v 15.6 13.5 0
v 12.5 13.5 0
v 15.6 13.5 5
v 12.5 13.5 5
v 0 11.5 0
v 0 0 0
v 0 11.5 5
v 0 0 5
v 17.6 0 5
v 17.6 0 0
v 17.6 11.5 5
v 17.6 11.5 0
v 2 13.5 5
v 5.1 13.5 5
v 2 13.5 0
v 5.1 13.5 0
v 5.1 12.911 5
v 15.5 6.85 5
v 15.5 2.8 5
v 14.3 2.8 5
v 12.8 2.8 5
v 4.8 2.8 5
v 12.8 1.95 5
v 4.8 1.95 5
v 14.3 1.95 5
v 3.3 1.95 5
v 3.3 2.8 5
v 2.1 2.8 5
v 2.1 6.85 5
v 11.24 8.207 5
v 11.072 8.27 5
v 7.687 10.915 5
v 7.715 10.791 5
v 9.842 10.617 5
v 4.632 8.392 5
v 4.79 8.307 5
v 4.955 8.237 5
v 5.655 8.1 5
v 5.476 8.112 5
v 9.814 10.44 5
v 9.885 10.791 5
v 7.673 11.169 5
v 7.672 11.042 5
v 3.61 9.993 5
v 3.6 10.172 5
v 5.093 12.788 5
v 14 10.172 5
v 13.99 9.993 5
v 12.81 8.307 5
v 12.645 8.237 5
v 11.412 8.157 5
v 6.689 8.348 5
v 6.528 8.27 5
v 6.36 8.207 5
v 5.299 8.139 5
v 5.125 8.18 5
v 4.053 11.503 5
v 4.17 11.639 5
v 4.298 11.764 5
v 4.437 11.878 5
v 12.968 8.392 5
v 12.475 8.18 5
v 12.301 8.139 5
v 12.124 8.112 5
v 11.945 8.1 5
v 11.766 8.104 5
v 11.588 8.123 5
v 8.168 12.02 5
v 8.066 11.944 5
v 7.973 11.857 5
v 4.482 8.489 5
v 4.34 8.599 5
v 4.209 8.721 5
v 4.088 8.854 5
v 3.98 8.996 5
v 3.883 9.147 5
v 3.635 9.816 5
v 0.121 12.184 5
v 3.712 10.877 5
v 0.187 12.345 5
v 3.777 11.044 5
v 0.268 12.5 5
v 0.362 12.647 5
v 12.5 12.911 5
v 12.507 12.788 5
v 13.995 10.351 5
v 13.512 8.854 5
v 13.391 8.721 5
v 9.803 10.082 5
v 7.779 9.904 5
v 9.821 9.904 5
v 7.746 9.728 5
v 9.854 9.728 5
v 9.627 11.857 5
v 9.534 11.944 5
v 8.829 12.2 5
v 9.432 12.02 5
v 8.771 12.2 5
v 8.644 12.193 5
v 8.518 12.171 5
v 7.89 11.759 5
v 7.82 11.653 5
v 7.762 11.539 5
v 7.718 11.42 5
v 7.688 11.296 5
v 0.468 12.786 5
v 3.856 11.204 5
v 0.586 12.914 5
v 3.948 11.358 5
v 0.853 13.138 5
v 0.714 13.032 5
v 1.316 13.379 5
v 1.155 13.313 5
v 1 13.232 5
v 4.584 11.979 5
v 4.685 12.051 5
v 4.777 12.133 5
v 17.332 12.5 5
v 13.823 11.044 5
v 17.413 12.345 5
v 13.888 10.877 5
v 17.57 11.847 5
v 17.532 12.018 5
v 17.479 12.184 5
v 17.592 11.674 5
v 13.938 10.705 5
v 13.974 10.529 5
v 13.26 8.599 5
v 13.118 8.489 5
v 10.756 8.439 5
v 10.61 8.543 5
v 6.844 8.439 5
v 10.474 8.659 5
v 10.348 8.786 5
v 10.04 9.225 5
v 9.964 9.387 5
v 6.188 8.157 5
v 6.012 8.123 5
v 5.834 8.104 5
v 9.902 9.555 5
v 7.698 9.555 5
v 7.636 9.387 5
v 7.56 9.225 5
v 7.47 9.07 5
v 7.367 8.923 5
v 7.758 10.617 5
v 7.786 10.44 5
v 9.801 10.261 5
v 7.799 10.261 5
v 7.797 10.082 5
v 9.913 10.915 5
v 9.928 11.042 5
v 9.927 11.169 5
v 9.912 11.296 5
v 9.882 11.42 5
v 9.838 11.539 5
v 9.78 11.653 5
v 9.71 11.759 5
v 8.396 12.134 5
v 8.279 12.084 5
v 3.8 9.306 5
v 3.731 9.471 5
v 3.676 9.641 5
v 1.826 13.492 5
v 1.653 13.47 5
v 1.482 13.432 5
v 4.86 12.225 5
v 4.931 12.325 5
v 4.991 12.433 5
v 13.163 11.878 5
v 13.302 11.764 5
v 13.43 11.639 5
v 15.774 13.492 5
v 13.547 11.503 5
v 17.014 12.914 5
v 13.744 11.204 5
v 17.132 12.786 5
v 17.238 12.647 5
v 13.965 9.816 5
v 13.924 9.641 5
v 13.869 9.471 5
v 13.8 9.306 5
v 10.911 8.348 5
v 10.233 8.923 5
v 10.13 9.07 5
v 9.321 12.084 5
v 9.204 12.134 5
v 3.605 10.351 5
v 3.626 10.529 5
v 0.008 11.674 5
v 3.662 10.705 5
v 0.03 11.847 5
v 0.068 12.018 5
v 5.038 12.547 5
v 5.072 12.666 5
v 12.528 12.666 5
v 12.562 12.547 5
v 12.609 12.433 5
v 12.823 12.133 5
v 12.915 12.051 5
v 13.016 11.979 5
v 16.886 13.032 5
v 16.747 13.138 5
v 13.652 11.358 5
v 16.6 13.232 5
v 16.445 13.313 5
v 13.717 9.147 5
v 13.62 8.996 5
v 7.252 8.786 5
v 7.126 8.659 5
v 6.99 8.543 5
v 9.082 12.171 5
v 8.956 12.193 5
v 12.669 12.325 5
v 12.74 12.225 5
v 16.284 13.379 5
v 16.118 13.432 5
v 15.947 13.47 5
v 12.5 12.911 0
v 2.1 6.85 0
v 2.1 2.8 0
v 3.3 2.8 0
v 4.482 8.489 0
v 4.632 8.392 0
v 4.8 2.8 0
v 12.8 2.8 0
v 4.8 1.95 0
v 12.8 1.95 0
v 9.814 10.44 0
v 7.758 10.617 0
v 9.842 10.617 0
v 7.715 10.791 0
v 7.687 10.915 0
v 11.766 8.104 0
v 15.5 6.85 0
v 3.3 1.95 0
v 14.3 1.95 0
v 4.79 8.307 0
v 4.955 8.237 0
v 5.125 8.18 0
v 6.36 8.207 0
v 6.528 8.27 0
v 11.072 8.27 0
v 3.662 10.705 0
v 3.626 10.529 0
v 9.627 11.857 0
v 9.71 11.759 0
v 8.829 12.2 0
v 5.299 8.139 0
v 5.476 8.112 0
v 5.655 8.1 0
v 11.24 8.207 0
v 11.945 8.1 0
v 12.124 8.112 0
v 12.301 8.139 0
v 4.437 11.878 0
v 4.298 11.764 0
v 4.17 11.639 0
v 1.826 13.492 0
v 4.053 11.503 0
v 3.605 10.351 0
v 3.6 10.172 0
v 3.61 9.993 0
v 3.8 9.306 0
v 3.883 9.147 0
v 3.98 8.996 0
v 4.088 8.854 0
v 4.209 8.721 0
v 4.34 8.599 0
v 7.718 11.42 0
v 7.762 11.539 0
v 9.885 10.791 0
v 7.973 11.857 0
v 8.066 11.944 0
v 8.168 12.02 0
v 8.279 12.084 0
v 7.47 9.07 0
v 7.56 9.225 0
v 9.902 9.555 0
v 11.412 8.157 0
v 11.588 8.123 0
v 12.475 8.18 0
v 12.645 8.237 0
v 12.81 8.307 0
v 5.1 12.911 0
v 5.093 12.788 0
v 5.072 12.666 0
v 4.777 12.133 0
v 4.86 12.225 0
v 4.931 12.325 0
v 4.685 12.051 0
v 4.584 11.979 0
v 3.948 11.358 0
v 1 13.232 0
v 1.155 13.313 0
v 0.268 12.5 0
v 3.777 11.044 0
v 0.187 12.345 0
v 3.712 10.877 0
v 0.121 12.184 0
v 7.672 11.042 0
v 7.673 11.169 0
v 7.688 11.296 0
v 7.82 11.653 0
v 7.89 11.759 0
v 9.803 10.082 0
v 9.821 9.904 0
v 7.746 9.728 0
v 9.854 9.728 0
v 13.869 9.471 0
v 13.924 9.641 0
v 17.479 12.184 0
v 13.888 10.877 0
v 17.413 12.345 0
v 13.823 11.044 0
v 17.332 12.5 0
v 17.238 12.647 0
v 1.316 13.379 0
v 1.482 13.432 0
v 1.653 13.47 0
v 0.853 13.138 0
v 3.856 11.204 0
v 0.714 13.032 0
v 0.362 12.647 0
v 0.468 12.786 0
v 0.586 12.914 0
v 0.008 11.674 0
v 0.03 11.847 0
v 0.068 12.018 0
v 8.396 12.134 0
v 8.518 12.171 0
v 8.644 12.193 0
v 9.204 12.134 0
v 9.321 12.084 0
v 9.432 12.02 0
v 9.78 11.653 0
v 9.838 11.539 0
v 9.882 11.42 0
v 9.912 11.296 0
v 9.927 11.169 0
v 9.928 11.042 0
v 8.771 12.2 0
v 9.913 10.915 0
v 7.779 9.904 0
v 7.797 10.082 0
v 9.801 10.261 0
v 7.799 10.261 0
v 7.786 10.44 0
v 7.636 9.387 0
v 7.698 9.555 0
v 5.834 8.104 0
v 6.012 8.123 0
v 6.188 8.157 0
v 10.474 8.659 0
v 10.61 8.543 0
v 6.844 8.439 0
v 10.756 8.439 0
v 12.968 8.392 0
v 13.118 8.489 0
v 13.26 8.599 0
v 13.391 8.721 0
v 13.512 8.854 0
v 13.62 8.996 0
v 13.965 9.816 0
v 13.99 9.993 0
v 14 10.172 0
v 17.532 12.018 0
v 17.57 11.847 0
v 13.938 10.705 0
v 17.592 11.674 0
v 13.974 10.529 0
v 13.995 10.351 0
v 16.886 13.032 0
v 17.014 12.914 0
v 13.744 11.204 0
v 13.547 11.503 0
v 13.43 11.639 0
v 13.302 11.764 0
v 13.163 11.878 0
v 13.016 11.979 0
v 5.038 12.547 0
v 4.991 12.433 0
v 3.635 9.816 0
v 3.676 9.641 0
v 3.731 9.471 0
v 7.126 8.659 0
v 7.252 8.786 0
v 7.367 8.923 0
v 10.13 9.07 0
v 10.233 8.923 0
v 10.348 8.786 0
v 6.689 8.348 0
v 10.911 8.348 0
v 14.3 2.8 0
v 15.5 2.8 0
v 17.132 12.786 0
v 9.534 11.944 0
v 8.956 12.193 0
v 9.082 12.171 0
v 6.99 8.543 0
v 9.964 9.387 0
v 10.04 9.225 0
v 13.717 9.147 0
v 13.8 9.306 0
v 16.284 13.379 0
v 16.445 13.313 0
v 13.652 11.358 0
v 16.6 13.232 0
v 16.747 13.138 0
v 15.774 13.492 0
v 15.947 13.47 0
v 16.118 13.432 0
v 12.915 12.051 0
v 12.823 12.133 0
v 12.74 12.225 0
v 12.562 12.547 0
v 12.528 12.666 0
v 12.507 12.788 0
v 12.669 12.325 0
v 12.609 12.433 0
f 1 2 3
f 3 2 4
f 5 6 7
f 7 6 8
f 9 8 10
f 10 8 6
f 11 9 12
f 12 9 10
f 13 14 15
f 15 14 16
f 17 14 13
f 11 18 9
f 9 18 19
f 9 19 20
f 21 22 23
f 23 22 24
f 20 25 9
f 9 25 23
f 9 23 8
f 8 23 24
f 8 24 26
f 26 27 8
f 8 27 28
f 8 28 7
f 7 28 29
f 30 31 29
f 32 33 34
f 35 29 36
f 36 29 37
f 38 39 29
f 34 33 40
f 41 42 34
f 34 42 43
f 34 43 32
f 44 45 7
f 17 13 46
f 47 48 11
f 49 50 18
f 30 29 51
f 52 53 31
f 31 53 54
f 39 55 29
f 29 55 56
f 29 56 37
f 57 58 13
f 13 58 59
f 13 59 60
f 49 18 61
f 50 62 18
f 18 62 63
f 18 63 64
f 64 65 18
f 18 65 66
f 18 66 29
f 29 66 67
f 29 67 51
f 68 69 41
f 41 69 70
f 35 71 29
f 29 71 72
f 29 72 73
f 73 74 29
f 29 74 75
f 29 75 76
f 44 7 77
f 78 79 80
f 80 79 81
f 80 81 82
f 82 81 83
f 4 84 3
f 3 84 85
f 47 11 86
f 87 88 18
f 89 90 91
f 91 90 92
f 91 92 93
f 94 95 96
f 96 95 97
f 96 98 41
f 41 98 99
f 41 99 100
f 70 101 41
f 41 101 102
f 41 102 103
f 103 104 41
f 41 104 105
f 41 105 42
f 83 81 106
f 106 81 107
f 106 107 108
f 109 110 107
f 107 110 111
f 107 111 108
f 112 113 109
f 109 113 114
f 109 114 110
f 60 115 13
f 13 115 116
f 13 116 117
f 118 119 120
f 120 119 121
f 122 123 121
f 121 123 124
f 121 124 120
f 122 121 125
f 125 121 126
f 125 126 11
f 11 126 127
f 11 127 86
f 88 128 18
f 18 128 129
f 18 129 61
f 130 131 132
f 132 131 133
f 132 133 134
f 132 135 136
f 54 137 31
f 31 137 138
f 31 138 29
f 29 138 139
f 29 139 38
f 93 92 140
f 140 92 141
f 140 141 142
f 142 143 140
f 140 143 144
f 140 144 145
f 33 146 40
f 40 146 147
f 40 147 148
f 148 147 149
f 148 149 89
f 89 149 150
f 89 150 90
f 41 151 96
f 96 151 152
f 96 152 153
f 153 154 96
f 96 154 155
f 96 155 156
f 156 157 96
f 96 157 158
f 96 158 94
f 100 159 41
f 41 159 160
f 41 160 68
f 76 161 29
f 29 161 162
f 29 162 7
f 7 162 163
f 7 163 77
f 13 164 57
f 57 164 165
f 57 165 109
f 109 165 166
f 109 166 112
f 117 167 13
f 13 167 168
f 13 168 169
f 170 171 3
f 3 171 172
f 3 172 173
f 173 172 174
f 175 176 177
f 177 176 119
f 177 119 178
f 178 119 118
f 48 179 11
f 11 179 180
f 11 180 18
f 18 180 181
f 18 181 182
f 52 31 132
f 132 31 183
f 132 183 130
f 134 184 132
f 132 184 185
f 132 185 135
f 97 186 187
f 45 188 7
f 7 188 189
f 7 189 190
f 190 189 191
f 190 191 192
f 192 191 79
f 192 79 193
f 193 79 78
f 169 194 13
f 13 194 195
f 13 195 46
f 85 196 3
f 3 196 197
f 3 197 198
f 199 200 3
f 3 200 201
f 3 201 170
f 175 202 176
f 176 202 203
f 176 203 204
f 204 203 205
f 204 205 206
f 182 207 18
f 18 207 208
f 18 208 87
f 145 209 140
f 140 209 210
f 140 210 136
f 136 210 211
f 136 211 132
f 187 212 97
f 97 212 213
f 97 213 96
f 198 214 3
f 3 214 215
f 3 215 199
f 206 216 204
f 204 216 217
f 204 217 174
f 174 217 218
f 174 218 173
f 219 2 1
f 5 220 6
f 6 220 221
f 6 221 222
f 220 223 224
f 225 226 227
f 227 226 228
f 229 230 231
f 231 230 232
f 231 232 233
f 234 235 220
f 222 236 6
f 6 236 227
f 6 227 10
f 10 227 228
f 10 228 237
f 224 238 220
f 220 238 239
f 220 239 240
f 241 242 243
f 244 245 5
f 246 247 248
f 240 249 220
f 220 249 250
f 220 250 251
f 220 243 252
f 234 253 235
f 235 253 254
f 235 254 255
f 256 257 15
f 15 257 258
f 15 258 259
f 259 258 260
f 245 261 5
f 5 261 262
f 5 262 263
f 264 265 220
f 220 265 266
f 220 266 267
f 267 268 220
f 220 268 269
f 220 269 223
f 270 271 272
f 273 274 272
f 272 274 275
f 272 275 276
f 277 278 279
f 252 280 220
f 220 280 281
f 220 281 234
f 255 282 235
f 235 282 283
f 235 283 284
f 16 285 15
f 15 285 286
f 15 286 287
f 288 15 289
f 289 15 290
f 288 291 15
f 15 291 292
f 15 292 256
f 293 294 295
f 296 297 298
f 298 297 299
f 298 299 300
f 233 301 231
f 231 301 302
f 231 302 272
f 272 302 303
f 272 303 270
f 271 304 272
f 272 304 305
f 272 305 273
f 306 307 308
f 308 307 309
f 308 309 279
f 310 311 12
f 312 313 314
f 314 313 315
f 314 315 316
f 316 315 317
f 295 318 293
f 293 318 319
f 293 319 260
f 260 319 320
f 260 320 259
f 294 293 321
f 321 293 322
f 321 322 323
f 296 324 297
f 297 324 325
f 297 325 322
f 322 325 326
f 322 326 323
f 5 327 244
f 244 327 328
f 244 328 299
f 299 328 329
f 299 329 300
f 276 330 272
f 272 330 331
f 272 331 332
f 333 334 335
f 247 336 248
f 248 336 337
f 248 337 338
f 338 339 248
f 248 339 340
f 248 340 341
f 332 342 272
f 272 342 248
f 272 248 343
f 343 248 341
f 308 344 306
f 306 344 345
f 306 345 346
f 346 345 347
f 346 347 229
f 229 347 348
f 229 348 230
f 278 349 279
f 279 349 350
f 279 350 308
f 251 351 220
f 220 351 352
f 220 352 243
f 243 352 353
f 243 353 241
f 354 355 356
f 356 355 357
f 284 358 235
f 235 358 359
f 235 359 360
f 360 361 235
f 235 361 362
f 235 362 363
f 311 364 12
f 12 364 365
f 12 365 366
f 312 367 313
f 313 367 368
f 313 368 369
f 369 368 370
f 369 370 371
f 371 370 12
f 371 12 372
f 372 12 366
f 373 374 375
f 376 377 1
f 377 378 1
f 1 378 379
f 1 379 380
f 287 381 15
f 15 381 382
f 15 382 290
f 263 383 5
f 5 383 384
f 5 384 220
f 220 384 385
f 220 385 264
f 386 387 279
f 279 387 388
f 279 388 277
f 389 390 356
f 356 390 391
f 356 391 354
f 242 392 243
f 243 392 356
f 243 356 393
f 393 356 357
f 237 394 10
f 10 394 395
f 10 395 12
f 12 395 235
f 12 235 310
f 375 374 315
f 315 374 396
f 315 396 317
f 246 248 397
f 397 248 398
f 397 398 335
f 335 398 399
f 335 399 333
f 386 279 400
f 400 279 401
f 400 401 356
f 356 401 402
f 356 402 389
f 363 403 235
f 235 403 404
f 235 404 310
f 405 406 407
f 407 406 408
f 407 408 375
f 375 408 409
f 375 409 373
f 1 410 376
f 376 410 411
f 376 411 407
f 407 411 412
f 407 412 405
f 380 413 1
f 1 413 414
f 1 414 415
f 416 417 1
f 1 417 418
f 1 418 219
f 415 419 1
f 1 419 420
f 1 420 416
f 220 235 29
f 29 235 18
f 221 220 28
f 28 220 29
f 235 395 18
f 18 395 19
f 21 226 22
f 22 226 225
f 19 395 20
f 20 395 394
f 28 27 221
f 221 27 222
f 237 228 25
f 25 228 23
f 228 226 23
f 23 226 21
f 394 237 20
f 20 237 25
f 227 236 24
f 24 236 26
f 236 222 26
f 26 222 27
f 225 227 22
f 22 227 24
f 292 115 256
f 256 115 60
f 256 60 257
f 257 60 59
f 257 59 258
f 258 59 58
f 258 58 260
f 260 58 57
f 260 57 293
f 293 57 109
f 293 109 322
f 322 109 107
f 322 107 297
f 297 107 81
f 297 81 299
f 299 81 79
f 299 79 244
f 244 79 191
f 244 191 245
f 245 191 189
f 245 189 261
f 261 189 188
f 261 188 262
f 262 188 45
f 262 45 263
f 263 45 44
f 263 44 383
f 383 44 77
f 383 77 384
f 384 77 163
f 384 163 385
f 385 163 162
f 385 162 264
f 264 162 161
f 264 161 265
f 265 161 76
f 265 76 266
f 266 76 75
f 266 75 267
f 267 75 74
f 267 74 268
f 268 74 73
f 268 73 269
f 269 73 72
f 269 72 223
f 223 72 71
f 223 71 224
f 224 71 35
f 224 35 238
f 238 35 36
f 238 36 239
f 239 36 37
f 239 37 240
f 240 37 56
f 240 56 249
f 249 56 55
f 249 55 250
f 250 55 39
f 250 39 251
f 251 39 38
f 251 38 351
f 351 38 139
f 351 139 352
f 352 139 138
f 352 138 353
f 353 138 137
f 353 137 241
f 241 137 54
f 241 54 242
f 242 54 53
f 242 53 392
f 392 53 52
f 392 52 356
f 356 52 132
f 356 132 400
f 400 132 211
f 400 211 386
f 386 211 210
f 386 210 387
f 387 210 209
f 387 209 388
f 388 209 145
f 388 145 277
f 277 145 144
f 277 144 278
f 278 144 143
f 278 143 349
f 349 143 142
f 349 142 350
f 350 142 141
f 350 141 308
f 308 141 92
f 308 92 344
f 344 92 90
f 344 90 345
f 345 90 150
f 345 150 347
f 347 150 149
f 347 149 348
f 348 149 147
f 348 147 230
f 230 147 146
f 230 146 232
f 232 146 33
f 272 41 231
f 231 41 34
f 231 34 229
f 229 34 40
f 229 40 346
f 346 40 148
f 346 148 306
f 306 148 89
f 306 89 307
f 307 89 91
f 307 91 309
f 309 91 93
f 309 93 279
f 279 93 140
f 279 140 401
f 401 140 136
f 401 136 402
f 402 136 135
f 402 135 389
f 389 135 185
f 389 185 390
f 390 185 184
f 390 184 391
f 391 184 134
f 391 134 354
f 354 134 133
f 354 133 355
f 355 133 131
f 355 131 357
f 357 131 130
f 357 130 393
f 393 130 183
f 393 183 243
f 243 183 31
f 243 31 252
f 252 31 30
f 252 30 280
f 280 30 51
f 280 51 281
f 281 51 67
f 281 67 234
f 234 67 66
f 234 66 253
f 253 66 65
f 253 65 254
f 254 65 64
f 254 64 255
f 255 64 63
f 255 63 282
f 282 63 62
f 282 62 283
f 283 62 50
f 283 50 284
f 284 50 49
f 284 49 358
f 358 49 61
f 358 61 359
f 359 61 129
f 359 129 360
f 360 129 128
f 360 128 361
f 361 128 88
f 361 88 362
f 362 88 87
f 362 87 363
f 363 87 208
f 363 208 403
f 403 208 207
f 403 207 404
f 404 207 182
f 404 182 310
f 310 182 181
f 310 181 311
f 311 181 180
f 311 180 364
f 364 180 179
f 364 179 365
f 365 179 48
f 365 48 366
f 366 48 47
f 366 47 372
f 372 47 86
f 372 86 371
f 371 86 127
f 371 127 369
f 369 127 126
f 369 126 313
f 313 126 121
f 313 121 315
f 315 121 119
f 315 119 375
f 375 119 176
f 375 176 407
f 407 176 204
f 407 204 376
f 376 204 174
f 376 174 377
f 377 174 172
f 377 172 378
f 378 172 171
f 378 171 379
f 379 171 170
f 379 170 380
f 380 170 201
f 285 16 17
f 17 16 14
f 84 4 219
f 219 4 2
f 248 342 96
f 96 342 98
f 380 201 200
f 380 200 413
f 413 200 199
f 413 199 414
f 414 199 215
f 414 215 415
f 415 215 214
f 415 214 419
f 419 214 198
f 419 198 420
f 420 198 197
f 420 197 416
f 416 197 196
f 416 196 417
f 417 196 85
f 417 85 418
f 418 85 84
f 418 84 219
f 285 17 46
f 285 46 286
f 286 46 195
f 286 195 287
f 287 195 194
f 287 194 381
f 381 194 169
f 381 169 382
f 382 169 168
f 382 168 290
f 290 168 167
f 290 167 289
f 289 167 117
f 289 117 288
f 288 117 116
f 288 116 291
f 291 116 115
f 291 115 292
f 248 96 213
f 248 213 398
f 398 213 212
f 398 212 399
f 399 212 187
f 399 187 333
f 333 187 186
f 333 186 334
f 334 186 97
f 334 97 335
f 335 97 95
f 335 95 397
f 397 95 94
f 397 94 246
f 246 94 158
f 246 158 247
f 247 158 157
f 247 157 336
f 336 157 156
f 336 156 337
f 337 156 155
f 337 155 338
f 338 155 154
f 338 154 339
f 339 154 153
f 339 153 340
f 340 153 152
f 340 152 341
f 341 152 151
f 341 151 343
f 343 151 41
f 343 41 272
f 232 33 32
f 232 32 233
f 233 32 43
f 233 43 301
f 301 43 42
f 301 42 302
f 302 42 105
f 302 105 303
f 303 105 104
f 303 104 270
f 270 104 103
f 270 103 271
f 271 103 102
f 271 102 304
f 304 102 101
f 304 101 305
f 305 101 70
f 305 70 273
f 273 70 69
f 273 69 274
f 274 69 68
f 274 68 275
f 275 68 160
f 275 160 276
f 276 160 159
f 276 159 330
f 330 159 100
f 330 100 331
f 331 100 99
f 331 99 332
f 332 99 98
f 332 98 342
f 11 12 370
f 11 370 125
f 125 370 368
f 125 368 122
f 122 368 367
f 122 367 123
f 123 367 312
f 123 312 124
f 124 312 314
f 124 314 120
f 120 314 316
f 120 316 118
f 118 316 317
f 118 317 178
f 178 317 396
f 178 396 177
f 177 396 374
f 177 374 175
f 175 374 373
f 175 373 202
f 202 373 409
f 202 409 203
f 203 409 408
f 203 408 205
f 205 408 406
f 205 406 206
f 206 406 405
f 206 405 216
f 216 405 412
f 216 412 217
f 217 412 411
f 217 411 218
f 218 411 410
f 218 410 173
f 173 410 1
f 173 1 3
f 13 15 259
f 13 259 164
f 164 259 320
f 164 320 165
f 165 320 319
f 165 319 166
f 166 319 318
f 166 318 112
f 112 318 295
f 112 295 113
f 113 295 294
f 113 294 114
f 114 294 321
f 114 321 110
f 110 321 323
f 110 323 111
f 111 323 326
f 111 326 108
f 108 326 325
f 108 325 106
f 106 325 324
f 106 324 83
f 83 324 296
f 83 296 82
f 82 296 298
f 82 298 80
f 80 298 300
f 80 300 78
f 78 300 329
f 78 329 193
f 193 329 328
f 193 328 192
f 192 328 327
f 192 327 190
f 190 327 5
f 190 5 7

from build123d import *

# Parameters (mm, degrees)
SKETCH1_W           = 17.6
SKETCH1_H           = 13.5
BOSS_EXTRUDE1_DEPTH = 5
SKETCH2_W           = 1.5
SKETCH2_H           = 0.85
SKETCH2_W_2         = 13.4
SKETCH2_H_2         = 4.05
CUT_EXTRUDE2_DEPTH  = 5
SKETCH3_R           = 2.1
SKETCH3_W           = 7.4
SKETCH3_H           = 1.3
CUT_EXTRUDE3_DEPTH  = 5
FILLET1_R           = 1.1
FILLET2_R           = 2


with BuildPart() as part:
    # Sketch1 → Boss-Extrude1 (new body)
    with BuildSketch(Plane.XY):
        with Locations((8.8, 6.75)):
            Rectangle(SKETCH1_W, SKETCH1_H)
    extrude(amount=BOSS_EXTRUDE1_DEPTH)

    # Sketch2 → Cut-Extrude2 (cut)
    with BuildSketch(Plane.XY.offset(5)):
        with Locations((13.55, 2.375)):
            Rectangle(SKETCH2_W, SKETCH2_H)
        with Locations((8.8, 4.825)):
            Rectangle(SKETCH2_W_2, SKETCH2_H_2)
        with Locations((4.05, 2.375)):
            Rectangle(SKETCH2_W, SKETCH2_H)
    extrude(amount=-CUT_EXTRUDE2_DEPTH, mode=Mode.SUBTRACT)

    # Sketch3 → Cut-Extrude3 (cut)
    with BuildSketch(Plane.XY.offset(5)):
        with Locations((5.7, 10.2)):
            Circle(SKETCH3_R)
        with Locations((11.9, 10.2)):
            Circle(SKETCH3_R)
        with Locations((8.8, 12.85)):
            Rectangle(SKETCH3_W, SKETCH3_H)
    extrude(amount=-CUT_EXTRUDE3_DEPTH, mode=Mode.SUBTRACT)

    # Fillet1
    fillet1_edges = [part.edges().sort_by_distance(p)[0] for p in [
        (12.5, 12.21246118, 2.5),
        (5.1, 12.21246118, 2.5),
        (6.340312424, 12.2, 2.5),
        (11.259687576, 12.2, 2.5),
    ]]
    fillet(fillet1_edges, radius=FILLET1_R)

    # Fillet2
    fillet2_edges = [part.edges().sort_by_distance(p)[0] for p in [
        (0, 13.5, 2.5),
        (17.6, 13.5, 2.5),
    ]]
    fillet(fillet2_edges, radius=FILLET2_R)


solid = part.part
